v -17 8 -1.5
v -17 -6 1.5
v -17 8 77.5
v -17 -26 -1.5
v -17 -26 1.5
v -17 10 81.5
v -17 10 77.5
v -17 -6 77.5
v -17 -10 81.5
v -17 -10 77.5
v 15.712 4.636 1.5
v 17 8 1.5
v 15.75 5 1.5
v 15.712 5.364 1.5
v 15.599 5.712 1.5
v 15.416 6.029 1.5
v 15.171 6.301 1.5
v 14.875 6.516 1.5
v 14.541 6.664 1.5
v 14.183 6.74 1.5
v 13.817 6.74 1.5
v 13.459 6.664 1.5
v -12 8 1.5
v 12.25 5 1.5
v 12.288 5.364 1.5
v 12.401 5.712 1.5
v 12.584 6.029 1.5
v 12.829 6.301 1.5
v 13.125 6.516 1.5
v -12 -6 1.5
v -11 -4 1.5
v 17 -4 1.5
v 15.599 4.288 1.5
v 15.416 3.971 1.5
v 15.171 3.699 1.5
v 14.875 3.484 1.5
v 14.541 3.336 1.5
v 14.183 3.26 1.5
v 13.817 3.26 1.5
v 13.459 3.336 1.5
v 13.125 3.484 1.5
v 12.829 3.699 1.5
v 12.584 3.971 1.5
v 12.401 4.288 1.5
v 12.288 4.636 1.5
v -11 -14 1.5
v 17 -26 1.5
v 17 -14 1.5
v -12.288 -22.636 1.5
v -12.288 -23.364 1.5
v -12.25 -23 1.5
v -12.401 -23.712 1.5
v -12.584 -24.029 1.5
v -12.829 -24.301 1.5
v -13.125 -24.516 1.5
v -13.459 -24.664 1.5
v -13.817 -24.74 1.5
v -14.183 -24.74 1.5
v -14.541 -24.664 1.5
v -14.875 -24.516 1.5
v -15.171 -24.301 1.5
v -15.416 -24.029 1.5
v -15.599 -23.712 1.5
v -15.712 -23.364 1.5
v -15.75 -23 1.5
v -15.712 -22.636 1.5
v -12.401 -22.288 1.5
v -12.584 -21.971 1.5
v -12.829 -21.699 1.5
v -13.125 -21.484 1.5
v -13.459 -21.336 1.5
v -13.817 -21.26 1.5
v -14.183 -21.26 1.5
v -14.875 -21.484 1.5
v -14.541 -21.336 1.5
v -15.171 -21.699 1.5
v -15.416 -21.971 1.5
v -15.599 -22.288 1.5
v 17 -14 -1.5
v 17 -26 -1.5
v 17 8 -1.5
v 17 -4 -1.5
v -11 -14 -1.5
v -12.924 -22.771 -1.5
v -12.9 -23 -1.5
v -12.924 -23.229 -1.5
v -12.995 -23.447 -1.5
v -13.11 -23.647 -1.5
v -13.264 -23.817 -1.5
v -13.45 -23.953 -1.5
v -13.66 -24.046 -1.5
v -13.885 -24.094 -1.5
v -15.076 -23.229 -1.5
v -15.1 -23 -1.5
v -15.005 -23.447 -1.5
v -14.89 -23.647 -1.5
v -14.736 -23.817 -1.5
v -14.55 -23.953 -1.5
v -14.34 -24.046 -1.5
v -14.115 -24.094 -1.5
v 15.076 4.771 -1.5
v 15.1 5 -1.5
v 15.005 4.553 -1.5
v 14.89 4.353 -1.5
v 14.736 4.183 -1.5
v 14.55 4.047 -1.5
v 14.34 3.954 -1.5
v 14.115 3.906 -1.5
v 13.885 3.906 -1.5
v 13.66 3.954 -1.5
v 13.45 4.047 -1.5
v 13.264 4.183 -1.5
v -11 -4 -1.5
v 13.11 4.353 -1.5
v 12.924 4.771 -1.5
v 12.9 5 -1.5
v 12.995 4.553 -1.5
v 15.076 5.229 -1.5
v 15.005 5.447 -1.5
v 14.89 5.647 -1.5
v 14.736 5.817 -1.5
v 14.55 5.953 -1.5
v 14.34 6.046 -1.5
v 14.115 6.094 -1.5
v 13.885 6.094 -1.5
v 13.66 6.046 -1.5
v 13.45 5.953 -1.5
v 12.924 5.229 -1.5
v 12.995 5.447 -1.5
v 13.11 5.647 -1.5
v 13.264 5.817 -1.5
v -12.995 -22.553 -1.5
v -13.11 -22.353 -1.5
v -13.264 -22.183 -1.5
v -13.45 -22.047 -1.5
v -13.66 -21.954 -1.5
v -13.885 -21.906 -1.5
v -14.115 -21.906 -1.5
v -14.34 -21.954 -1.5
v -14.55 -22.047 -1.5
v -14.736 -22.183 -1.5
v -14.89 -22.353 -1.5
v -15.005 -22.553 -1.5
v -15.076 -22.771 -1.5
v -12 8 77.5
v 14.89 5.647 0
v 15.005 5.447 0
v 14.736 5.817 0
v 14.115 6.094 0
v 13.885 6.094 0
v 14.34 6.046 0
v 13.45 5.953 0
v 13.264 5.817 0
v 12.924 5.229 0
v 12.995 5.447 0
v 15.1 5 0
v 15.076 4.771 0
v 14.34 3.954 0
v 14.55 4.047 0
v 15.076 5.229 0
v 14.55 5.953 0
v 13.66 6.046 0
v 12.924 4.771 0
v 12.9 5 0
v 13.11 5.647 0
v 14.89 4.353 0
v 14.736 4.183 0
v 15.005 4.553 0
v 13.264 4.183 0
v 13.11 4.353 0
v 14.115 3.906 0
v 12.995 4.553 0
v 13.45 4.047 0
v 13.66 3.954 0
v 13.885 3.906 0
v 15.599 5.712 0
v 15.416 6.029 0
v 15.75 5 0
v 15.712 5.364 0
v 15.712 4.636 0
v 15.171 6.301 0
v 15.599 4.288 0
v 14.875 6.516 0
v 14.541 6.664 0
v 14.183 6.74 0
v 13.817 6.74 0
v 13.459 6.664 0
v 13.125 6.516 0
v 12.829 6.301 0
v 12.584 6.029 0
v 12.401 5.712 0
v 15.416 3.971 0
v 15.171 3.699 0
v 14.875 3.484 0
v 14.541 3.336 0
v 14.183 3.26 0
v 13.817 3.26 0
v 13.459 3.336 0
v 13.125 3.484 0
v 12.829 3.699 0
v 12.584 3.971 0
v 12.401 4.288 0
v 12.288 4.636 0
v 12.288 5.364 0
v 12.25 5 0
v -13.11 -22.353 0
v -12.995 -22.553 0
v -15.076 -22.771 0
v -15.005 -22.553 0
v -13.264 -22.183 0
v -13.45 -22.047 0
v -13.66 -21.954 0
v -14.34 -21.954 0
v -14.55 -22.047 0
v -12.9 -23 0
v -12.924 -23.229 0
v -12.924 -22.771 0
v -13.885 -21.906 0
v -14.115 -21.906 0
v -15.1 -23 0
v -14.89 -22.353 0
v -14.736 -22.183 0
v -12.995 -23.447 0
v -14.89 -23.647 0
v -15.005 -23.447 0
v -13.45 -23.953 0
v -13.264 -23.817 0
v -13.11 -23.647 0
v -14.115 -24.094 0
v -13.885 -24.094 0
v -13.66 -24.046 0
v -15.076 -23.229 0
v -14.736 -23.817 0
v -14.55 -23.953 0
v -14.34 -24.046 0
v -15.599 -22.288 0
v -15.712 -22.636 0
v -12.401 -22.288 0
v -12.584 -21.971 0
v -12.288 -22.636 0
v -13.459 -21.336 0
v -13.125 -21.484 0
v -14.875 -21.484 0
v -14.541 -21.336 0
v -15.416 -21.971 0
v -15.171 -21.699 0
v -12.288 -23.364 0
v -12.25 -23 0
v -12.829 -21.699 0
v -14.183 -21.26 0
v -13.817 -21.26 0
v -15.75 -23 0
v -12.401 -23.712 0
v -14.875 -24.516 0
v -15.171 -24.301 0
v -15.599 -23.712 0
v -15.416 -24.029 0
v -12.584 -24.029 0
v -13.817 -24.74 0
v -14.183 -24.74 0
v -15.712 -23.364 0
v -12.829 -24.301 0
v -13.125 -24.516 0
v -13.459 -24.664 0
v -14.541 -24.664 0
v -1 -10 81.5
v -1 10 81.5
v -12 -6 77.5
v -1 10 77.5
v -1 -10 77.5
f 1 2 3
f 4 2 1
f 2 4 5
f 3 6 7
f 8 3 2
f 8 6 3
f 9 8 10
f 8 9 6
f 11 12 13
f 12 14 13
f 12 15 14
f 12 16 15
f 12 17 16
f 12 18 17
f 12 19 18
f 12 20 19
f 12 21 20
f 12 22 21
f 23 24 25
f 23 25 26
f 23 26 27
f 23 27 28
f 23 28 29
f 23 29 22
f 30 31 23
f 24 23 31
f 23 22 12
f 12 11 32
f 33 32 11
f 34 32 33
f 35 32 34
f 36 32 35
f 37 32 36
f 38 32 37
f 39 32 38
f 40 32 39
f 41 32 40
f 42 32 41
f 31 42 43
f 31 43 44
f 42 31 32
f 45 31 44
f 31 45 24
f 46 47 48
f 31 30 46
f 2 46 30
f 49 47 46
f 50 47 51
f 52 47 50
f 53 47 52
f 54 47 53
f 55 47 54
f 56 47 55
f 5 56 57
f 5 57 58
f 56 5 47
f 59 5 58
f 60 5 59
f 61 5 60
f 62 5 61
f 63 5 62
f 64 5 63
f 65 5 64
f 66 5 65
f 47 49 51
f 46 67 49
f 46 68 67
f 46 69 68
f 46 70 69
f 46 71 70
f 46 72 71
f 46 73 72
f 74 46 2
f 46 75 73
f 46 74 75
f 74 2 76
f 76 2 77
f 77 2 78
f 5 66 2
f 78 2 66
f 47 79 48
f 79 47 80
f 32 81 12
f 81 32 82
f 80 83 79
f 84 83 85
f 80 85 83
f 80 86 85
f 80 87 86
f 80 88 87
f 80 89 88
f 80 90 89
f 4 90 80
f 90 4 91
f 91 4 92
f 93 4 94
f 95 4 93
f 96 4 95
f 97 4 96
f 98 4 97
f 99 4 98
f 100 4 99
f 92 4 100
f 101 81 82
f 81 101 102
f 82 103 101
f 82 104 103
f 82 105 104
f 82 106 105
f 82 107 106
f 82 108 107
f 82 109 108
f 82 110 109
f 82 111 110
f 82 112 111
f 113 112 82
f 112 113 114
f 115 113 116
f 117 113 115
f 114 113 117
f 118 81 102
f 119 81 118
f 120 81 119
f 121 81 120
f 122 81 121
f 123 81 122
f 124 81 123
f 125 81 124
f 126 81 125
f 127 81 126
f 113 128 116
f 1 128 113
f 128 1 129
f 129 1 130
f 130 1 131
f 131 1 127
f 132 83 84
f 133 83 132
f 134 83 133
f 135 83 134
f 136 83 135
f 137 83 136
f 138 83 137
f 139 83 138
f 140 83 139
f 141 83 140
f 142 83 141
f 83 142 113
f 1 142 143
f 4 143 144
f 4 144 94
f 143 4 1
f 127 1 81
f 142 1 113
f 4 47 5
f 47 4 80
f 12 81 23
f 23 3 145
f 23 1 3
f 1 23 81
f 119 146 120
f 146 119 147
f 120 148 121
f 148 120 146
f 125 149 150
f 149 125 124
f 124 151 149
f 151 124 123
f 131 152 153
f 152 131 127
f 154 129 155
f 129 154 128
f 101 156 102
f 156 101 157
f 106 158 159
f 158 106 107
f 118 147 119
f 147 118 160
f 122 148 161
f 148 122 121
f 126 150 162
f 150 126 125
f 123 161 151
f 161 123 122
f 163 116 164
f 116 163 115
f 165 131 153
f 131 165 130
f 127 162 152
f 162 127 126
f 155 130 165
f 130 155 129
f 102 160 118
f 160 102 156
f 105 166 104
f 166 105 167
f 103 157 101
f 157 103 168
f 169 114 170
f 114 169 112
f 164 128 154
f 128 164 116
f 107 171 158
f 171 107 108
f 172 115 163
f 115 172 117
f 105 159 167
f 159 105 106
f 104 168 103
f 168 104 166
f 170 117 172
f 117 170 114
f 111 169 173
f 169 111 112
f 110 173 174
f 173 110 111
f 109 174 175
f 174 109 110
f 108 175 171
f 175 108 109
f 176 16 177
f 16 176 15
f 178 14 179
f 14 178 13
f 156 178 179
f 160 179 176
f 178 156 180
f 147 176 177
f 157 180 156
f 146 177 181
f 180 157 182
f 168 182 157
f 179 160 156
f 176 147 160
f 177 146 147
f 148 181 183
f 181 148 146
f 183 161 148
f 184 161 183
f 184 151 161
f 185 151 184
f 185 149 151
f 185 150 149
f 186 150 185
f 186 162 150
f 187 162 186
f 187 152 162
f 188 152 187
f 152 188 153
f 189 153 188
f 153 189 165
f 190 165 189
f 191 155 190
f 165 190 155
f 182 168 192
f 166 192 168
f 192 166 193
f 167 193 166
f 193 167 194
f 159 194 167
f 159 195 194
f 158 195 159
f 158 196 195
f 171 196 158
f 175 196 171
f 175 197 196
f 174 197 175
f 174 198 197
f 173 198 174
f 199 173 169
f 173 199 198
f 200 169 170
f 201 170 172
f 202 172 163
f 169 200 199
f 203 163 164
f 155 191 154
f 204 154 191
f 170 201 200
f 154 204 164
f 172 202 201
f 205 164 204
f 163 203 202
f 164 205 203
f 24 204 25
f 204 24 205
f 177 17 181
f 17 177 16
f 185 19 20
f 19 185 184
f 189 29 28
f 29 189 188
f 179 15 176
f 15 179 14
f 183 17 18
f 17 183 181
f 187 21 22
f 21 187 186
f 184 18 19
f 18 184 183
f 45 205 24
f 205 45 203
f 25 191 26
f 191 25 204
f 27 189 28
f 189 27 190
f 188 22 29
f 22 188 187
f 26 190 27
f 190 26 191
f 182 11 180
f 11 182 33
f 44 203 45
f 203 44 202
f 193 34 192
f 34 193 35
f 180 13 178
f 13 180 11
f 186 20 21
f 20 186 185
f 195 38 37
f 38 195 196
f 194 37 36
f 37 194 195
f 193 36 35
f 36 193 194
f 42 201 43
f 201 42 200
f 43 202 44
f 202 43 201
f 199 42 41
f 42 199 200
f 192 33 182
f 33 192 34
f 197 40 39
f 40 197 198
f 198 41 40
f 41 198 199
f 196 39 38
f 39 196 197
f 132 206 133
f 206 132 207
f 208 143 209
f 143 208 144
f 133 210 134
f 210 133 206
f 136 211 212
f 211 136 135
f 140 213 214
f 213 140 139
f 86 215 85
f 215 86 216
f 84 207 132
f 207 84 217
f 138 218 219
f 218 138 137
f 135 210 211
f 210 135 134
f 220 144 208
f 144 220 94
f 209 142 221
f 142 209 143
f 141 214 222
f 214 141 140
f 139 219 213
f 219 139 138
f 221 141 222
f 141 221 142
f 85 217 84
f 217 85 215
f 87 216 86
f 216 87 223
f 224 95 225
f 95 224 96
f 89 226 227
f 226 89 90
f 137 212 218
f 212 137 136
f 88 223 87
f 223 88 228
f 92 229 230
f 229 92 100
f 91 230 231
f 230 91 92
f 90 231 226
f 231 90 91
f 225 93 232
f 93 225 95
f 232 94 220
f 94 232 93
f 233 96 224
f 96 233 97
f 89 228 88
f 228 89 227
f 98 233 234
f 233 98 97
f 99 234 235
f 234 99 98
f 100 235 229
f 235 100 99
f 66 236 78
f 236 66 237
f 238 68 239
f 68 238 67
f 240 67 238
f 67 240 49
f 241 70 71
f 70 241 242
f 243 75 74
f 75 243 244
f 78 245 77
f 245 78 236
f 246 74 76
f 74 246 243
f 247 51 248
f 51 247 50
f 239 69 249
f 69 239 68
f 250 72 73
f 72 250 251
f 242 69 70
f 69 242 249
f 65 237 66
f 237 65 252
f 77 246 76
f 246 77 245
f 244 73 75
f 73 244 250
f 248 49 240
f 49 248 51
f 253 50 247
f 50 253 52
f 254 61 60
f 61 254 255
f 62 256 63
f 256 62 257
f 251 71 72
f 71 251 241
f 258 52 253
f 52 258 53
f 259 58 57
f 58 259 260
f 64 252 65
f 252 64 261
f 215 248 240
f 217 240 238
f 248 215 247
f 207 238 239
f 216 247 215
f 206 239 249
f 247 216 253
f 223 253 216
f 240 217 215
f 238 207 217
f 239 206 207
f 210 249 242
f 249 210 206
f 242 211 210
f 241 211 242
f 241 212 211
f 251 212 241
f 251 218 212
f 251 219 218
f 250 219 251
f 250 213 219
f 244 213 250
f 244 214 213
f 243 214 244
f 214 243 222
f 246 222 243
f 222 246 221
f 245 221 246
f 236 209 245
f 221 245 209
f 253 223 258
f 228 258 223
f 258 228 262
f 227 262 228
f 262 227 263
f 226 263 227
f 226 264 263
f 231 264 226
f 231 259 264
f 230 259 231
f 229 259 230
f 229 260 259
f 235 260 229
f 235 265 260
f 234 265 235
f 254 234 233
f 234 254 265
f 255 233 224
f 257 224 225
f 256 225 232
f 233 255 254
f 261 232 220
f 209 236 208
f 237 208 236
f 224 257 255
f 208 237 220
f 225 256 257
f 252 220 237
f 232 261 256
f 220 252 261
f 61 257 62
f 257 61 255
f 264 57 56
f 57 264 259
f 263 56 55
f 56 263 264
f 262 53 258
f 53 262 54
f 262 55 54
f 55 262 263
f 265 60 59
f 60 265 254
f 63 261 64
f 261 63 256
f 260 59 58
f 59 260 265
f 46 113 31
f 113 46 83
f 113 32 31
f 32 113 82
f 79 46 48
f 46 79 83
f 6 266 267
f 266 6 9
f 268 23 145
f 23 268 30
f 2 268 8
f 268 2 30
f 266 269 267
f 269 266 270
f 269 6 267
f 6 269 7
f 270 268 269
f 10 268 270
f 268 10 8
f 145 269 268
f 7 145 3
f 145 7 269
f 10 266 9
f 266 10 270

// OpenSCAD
$fn=30;
translate([0,-9,0])
difference(){
cube([34,34,3],center=true);

//固定孔位
translate([34/2-3,34/2-3,-1])
cylinder(h=3,d=2.2,center=true);
translate([34/2-3,34/2-3,2])
cylinder(h=4,d=3.5,center=true);

//对角  
translate([-1*(34/2-3),-1*(34/2-3),-1])
cylinder(h=3,d=2.2,center=true);
translate([-1*(34/2-3),-1*(34/2-3),2])
cylinder(h=4,d=3.5,center=true);
//线孔
translate([4,0,0])    
    cube([30,10,5],center=true); 
    }
 
    translate([-17,-6,1.5])
cube([5,14,80]);



    
    translate([-17,-13+3,+1.5+70-4+10])
cube([16,20,4]);
 
